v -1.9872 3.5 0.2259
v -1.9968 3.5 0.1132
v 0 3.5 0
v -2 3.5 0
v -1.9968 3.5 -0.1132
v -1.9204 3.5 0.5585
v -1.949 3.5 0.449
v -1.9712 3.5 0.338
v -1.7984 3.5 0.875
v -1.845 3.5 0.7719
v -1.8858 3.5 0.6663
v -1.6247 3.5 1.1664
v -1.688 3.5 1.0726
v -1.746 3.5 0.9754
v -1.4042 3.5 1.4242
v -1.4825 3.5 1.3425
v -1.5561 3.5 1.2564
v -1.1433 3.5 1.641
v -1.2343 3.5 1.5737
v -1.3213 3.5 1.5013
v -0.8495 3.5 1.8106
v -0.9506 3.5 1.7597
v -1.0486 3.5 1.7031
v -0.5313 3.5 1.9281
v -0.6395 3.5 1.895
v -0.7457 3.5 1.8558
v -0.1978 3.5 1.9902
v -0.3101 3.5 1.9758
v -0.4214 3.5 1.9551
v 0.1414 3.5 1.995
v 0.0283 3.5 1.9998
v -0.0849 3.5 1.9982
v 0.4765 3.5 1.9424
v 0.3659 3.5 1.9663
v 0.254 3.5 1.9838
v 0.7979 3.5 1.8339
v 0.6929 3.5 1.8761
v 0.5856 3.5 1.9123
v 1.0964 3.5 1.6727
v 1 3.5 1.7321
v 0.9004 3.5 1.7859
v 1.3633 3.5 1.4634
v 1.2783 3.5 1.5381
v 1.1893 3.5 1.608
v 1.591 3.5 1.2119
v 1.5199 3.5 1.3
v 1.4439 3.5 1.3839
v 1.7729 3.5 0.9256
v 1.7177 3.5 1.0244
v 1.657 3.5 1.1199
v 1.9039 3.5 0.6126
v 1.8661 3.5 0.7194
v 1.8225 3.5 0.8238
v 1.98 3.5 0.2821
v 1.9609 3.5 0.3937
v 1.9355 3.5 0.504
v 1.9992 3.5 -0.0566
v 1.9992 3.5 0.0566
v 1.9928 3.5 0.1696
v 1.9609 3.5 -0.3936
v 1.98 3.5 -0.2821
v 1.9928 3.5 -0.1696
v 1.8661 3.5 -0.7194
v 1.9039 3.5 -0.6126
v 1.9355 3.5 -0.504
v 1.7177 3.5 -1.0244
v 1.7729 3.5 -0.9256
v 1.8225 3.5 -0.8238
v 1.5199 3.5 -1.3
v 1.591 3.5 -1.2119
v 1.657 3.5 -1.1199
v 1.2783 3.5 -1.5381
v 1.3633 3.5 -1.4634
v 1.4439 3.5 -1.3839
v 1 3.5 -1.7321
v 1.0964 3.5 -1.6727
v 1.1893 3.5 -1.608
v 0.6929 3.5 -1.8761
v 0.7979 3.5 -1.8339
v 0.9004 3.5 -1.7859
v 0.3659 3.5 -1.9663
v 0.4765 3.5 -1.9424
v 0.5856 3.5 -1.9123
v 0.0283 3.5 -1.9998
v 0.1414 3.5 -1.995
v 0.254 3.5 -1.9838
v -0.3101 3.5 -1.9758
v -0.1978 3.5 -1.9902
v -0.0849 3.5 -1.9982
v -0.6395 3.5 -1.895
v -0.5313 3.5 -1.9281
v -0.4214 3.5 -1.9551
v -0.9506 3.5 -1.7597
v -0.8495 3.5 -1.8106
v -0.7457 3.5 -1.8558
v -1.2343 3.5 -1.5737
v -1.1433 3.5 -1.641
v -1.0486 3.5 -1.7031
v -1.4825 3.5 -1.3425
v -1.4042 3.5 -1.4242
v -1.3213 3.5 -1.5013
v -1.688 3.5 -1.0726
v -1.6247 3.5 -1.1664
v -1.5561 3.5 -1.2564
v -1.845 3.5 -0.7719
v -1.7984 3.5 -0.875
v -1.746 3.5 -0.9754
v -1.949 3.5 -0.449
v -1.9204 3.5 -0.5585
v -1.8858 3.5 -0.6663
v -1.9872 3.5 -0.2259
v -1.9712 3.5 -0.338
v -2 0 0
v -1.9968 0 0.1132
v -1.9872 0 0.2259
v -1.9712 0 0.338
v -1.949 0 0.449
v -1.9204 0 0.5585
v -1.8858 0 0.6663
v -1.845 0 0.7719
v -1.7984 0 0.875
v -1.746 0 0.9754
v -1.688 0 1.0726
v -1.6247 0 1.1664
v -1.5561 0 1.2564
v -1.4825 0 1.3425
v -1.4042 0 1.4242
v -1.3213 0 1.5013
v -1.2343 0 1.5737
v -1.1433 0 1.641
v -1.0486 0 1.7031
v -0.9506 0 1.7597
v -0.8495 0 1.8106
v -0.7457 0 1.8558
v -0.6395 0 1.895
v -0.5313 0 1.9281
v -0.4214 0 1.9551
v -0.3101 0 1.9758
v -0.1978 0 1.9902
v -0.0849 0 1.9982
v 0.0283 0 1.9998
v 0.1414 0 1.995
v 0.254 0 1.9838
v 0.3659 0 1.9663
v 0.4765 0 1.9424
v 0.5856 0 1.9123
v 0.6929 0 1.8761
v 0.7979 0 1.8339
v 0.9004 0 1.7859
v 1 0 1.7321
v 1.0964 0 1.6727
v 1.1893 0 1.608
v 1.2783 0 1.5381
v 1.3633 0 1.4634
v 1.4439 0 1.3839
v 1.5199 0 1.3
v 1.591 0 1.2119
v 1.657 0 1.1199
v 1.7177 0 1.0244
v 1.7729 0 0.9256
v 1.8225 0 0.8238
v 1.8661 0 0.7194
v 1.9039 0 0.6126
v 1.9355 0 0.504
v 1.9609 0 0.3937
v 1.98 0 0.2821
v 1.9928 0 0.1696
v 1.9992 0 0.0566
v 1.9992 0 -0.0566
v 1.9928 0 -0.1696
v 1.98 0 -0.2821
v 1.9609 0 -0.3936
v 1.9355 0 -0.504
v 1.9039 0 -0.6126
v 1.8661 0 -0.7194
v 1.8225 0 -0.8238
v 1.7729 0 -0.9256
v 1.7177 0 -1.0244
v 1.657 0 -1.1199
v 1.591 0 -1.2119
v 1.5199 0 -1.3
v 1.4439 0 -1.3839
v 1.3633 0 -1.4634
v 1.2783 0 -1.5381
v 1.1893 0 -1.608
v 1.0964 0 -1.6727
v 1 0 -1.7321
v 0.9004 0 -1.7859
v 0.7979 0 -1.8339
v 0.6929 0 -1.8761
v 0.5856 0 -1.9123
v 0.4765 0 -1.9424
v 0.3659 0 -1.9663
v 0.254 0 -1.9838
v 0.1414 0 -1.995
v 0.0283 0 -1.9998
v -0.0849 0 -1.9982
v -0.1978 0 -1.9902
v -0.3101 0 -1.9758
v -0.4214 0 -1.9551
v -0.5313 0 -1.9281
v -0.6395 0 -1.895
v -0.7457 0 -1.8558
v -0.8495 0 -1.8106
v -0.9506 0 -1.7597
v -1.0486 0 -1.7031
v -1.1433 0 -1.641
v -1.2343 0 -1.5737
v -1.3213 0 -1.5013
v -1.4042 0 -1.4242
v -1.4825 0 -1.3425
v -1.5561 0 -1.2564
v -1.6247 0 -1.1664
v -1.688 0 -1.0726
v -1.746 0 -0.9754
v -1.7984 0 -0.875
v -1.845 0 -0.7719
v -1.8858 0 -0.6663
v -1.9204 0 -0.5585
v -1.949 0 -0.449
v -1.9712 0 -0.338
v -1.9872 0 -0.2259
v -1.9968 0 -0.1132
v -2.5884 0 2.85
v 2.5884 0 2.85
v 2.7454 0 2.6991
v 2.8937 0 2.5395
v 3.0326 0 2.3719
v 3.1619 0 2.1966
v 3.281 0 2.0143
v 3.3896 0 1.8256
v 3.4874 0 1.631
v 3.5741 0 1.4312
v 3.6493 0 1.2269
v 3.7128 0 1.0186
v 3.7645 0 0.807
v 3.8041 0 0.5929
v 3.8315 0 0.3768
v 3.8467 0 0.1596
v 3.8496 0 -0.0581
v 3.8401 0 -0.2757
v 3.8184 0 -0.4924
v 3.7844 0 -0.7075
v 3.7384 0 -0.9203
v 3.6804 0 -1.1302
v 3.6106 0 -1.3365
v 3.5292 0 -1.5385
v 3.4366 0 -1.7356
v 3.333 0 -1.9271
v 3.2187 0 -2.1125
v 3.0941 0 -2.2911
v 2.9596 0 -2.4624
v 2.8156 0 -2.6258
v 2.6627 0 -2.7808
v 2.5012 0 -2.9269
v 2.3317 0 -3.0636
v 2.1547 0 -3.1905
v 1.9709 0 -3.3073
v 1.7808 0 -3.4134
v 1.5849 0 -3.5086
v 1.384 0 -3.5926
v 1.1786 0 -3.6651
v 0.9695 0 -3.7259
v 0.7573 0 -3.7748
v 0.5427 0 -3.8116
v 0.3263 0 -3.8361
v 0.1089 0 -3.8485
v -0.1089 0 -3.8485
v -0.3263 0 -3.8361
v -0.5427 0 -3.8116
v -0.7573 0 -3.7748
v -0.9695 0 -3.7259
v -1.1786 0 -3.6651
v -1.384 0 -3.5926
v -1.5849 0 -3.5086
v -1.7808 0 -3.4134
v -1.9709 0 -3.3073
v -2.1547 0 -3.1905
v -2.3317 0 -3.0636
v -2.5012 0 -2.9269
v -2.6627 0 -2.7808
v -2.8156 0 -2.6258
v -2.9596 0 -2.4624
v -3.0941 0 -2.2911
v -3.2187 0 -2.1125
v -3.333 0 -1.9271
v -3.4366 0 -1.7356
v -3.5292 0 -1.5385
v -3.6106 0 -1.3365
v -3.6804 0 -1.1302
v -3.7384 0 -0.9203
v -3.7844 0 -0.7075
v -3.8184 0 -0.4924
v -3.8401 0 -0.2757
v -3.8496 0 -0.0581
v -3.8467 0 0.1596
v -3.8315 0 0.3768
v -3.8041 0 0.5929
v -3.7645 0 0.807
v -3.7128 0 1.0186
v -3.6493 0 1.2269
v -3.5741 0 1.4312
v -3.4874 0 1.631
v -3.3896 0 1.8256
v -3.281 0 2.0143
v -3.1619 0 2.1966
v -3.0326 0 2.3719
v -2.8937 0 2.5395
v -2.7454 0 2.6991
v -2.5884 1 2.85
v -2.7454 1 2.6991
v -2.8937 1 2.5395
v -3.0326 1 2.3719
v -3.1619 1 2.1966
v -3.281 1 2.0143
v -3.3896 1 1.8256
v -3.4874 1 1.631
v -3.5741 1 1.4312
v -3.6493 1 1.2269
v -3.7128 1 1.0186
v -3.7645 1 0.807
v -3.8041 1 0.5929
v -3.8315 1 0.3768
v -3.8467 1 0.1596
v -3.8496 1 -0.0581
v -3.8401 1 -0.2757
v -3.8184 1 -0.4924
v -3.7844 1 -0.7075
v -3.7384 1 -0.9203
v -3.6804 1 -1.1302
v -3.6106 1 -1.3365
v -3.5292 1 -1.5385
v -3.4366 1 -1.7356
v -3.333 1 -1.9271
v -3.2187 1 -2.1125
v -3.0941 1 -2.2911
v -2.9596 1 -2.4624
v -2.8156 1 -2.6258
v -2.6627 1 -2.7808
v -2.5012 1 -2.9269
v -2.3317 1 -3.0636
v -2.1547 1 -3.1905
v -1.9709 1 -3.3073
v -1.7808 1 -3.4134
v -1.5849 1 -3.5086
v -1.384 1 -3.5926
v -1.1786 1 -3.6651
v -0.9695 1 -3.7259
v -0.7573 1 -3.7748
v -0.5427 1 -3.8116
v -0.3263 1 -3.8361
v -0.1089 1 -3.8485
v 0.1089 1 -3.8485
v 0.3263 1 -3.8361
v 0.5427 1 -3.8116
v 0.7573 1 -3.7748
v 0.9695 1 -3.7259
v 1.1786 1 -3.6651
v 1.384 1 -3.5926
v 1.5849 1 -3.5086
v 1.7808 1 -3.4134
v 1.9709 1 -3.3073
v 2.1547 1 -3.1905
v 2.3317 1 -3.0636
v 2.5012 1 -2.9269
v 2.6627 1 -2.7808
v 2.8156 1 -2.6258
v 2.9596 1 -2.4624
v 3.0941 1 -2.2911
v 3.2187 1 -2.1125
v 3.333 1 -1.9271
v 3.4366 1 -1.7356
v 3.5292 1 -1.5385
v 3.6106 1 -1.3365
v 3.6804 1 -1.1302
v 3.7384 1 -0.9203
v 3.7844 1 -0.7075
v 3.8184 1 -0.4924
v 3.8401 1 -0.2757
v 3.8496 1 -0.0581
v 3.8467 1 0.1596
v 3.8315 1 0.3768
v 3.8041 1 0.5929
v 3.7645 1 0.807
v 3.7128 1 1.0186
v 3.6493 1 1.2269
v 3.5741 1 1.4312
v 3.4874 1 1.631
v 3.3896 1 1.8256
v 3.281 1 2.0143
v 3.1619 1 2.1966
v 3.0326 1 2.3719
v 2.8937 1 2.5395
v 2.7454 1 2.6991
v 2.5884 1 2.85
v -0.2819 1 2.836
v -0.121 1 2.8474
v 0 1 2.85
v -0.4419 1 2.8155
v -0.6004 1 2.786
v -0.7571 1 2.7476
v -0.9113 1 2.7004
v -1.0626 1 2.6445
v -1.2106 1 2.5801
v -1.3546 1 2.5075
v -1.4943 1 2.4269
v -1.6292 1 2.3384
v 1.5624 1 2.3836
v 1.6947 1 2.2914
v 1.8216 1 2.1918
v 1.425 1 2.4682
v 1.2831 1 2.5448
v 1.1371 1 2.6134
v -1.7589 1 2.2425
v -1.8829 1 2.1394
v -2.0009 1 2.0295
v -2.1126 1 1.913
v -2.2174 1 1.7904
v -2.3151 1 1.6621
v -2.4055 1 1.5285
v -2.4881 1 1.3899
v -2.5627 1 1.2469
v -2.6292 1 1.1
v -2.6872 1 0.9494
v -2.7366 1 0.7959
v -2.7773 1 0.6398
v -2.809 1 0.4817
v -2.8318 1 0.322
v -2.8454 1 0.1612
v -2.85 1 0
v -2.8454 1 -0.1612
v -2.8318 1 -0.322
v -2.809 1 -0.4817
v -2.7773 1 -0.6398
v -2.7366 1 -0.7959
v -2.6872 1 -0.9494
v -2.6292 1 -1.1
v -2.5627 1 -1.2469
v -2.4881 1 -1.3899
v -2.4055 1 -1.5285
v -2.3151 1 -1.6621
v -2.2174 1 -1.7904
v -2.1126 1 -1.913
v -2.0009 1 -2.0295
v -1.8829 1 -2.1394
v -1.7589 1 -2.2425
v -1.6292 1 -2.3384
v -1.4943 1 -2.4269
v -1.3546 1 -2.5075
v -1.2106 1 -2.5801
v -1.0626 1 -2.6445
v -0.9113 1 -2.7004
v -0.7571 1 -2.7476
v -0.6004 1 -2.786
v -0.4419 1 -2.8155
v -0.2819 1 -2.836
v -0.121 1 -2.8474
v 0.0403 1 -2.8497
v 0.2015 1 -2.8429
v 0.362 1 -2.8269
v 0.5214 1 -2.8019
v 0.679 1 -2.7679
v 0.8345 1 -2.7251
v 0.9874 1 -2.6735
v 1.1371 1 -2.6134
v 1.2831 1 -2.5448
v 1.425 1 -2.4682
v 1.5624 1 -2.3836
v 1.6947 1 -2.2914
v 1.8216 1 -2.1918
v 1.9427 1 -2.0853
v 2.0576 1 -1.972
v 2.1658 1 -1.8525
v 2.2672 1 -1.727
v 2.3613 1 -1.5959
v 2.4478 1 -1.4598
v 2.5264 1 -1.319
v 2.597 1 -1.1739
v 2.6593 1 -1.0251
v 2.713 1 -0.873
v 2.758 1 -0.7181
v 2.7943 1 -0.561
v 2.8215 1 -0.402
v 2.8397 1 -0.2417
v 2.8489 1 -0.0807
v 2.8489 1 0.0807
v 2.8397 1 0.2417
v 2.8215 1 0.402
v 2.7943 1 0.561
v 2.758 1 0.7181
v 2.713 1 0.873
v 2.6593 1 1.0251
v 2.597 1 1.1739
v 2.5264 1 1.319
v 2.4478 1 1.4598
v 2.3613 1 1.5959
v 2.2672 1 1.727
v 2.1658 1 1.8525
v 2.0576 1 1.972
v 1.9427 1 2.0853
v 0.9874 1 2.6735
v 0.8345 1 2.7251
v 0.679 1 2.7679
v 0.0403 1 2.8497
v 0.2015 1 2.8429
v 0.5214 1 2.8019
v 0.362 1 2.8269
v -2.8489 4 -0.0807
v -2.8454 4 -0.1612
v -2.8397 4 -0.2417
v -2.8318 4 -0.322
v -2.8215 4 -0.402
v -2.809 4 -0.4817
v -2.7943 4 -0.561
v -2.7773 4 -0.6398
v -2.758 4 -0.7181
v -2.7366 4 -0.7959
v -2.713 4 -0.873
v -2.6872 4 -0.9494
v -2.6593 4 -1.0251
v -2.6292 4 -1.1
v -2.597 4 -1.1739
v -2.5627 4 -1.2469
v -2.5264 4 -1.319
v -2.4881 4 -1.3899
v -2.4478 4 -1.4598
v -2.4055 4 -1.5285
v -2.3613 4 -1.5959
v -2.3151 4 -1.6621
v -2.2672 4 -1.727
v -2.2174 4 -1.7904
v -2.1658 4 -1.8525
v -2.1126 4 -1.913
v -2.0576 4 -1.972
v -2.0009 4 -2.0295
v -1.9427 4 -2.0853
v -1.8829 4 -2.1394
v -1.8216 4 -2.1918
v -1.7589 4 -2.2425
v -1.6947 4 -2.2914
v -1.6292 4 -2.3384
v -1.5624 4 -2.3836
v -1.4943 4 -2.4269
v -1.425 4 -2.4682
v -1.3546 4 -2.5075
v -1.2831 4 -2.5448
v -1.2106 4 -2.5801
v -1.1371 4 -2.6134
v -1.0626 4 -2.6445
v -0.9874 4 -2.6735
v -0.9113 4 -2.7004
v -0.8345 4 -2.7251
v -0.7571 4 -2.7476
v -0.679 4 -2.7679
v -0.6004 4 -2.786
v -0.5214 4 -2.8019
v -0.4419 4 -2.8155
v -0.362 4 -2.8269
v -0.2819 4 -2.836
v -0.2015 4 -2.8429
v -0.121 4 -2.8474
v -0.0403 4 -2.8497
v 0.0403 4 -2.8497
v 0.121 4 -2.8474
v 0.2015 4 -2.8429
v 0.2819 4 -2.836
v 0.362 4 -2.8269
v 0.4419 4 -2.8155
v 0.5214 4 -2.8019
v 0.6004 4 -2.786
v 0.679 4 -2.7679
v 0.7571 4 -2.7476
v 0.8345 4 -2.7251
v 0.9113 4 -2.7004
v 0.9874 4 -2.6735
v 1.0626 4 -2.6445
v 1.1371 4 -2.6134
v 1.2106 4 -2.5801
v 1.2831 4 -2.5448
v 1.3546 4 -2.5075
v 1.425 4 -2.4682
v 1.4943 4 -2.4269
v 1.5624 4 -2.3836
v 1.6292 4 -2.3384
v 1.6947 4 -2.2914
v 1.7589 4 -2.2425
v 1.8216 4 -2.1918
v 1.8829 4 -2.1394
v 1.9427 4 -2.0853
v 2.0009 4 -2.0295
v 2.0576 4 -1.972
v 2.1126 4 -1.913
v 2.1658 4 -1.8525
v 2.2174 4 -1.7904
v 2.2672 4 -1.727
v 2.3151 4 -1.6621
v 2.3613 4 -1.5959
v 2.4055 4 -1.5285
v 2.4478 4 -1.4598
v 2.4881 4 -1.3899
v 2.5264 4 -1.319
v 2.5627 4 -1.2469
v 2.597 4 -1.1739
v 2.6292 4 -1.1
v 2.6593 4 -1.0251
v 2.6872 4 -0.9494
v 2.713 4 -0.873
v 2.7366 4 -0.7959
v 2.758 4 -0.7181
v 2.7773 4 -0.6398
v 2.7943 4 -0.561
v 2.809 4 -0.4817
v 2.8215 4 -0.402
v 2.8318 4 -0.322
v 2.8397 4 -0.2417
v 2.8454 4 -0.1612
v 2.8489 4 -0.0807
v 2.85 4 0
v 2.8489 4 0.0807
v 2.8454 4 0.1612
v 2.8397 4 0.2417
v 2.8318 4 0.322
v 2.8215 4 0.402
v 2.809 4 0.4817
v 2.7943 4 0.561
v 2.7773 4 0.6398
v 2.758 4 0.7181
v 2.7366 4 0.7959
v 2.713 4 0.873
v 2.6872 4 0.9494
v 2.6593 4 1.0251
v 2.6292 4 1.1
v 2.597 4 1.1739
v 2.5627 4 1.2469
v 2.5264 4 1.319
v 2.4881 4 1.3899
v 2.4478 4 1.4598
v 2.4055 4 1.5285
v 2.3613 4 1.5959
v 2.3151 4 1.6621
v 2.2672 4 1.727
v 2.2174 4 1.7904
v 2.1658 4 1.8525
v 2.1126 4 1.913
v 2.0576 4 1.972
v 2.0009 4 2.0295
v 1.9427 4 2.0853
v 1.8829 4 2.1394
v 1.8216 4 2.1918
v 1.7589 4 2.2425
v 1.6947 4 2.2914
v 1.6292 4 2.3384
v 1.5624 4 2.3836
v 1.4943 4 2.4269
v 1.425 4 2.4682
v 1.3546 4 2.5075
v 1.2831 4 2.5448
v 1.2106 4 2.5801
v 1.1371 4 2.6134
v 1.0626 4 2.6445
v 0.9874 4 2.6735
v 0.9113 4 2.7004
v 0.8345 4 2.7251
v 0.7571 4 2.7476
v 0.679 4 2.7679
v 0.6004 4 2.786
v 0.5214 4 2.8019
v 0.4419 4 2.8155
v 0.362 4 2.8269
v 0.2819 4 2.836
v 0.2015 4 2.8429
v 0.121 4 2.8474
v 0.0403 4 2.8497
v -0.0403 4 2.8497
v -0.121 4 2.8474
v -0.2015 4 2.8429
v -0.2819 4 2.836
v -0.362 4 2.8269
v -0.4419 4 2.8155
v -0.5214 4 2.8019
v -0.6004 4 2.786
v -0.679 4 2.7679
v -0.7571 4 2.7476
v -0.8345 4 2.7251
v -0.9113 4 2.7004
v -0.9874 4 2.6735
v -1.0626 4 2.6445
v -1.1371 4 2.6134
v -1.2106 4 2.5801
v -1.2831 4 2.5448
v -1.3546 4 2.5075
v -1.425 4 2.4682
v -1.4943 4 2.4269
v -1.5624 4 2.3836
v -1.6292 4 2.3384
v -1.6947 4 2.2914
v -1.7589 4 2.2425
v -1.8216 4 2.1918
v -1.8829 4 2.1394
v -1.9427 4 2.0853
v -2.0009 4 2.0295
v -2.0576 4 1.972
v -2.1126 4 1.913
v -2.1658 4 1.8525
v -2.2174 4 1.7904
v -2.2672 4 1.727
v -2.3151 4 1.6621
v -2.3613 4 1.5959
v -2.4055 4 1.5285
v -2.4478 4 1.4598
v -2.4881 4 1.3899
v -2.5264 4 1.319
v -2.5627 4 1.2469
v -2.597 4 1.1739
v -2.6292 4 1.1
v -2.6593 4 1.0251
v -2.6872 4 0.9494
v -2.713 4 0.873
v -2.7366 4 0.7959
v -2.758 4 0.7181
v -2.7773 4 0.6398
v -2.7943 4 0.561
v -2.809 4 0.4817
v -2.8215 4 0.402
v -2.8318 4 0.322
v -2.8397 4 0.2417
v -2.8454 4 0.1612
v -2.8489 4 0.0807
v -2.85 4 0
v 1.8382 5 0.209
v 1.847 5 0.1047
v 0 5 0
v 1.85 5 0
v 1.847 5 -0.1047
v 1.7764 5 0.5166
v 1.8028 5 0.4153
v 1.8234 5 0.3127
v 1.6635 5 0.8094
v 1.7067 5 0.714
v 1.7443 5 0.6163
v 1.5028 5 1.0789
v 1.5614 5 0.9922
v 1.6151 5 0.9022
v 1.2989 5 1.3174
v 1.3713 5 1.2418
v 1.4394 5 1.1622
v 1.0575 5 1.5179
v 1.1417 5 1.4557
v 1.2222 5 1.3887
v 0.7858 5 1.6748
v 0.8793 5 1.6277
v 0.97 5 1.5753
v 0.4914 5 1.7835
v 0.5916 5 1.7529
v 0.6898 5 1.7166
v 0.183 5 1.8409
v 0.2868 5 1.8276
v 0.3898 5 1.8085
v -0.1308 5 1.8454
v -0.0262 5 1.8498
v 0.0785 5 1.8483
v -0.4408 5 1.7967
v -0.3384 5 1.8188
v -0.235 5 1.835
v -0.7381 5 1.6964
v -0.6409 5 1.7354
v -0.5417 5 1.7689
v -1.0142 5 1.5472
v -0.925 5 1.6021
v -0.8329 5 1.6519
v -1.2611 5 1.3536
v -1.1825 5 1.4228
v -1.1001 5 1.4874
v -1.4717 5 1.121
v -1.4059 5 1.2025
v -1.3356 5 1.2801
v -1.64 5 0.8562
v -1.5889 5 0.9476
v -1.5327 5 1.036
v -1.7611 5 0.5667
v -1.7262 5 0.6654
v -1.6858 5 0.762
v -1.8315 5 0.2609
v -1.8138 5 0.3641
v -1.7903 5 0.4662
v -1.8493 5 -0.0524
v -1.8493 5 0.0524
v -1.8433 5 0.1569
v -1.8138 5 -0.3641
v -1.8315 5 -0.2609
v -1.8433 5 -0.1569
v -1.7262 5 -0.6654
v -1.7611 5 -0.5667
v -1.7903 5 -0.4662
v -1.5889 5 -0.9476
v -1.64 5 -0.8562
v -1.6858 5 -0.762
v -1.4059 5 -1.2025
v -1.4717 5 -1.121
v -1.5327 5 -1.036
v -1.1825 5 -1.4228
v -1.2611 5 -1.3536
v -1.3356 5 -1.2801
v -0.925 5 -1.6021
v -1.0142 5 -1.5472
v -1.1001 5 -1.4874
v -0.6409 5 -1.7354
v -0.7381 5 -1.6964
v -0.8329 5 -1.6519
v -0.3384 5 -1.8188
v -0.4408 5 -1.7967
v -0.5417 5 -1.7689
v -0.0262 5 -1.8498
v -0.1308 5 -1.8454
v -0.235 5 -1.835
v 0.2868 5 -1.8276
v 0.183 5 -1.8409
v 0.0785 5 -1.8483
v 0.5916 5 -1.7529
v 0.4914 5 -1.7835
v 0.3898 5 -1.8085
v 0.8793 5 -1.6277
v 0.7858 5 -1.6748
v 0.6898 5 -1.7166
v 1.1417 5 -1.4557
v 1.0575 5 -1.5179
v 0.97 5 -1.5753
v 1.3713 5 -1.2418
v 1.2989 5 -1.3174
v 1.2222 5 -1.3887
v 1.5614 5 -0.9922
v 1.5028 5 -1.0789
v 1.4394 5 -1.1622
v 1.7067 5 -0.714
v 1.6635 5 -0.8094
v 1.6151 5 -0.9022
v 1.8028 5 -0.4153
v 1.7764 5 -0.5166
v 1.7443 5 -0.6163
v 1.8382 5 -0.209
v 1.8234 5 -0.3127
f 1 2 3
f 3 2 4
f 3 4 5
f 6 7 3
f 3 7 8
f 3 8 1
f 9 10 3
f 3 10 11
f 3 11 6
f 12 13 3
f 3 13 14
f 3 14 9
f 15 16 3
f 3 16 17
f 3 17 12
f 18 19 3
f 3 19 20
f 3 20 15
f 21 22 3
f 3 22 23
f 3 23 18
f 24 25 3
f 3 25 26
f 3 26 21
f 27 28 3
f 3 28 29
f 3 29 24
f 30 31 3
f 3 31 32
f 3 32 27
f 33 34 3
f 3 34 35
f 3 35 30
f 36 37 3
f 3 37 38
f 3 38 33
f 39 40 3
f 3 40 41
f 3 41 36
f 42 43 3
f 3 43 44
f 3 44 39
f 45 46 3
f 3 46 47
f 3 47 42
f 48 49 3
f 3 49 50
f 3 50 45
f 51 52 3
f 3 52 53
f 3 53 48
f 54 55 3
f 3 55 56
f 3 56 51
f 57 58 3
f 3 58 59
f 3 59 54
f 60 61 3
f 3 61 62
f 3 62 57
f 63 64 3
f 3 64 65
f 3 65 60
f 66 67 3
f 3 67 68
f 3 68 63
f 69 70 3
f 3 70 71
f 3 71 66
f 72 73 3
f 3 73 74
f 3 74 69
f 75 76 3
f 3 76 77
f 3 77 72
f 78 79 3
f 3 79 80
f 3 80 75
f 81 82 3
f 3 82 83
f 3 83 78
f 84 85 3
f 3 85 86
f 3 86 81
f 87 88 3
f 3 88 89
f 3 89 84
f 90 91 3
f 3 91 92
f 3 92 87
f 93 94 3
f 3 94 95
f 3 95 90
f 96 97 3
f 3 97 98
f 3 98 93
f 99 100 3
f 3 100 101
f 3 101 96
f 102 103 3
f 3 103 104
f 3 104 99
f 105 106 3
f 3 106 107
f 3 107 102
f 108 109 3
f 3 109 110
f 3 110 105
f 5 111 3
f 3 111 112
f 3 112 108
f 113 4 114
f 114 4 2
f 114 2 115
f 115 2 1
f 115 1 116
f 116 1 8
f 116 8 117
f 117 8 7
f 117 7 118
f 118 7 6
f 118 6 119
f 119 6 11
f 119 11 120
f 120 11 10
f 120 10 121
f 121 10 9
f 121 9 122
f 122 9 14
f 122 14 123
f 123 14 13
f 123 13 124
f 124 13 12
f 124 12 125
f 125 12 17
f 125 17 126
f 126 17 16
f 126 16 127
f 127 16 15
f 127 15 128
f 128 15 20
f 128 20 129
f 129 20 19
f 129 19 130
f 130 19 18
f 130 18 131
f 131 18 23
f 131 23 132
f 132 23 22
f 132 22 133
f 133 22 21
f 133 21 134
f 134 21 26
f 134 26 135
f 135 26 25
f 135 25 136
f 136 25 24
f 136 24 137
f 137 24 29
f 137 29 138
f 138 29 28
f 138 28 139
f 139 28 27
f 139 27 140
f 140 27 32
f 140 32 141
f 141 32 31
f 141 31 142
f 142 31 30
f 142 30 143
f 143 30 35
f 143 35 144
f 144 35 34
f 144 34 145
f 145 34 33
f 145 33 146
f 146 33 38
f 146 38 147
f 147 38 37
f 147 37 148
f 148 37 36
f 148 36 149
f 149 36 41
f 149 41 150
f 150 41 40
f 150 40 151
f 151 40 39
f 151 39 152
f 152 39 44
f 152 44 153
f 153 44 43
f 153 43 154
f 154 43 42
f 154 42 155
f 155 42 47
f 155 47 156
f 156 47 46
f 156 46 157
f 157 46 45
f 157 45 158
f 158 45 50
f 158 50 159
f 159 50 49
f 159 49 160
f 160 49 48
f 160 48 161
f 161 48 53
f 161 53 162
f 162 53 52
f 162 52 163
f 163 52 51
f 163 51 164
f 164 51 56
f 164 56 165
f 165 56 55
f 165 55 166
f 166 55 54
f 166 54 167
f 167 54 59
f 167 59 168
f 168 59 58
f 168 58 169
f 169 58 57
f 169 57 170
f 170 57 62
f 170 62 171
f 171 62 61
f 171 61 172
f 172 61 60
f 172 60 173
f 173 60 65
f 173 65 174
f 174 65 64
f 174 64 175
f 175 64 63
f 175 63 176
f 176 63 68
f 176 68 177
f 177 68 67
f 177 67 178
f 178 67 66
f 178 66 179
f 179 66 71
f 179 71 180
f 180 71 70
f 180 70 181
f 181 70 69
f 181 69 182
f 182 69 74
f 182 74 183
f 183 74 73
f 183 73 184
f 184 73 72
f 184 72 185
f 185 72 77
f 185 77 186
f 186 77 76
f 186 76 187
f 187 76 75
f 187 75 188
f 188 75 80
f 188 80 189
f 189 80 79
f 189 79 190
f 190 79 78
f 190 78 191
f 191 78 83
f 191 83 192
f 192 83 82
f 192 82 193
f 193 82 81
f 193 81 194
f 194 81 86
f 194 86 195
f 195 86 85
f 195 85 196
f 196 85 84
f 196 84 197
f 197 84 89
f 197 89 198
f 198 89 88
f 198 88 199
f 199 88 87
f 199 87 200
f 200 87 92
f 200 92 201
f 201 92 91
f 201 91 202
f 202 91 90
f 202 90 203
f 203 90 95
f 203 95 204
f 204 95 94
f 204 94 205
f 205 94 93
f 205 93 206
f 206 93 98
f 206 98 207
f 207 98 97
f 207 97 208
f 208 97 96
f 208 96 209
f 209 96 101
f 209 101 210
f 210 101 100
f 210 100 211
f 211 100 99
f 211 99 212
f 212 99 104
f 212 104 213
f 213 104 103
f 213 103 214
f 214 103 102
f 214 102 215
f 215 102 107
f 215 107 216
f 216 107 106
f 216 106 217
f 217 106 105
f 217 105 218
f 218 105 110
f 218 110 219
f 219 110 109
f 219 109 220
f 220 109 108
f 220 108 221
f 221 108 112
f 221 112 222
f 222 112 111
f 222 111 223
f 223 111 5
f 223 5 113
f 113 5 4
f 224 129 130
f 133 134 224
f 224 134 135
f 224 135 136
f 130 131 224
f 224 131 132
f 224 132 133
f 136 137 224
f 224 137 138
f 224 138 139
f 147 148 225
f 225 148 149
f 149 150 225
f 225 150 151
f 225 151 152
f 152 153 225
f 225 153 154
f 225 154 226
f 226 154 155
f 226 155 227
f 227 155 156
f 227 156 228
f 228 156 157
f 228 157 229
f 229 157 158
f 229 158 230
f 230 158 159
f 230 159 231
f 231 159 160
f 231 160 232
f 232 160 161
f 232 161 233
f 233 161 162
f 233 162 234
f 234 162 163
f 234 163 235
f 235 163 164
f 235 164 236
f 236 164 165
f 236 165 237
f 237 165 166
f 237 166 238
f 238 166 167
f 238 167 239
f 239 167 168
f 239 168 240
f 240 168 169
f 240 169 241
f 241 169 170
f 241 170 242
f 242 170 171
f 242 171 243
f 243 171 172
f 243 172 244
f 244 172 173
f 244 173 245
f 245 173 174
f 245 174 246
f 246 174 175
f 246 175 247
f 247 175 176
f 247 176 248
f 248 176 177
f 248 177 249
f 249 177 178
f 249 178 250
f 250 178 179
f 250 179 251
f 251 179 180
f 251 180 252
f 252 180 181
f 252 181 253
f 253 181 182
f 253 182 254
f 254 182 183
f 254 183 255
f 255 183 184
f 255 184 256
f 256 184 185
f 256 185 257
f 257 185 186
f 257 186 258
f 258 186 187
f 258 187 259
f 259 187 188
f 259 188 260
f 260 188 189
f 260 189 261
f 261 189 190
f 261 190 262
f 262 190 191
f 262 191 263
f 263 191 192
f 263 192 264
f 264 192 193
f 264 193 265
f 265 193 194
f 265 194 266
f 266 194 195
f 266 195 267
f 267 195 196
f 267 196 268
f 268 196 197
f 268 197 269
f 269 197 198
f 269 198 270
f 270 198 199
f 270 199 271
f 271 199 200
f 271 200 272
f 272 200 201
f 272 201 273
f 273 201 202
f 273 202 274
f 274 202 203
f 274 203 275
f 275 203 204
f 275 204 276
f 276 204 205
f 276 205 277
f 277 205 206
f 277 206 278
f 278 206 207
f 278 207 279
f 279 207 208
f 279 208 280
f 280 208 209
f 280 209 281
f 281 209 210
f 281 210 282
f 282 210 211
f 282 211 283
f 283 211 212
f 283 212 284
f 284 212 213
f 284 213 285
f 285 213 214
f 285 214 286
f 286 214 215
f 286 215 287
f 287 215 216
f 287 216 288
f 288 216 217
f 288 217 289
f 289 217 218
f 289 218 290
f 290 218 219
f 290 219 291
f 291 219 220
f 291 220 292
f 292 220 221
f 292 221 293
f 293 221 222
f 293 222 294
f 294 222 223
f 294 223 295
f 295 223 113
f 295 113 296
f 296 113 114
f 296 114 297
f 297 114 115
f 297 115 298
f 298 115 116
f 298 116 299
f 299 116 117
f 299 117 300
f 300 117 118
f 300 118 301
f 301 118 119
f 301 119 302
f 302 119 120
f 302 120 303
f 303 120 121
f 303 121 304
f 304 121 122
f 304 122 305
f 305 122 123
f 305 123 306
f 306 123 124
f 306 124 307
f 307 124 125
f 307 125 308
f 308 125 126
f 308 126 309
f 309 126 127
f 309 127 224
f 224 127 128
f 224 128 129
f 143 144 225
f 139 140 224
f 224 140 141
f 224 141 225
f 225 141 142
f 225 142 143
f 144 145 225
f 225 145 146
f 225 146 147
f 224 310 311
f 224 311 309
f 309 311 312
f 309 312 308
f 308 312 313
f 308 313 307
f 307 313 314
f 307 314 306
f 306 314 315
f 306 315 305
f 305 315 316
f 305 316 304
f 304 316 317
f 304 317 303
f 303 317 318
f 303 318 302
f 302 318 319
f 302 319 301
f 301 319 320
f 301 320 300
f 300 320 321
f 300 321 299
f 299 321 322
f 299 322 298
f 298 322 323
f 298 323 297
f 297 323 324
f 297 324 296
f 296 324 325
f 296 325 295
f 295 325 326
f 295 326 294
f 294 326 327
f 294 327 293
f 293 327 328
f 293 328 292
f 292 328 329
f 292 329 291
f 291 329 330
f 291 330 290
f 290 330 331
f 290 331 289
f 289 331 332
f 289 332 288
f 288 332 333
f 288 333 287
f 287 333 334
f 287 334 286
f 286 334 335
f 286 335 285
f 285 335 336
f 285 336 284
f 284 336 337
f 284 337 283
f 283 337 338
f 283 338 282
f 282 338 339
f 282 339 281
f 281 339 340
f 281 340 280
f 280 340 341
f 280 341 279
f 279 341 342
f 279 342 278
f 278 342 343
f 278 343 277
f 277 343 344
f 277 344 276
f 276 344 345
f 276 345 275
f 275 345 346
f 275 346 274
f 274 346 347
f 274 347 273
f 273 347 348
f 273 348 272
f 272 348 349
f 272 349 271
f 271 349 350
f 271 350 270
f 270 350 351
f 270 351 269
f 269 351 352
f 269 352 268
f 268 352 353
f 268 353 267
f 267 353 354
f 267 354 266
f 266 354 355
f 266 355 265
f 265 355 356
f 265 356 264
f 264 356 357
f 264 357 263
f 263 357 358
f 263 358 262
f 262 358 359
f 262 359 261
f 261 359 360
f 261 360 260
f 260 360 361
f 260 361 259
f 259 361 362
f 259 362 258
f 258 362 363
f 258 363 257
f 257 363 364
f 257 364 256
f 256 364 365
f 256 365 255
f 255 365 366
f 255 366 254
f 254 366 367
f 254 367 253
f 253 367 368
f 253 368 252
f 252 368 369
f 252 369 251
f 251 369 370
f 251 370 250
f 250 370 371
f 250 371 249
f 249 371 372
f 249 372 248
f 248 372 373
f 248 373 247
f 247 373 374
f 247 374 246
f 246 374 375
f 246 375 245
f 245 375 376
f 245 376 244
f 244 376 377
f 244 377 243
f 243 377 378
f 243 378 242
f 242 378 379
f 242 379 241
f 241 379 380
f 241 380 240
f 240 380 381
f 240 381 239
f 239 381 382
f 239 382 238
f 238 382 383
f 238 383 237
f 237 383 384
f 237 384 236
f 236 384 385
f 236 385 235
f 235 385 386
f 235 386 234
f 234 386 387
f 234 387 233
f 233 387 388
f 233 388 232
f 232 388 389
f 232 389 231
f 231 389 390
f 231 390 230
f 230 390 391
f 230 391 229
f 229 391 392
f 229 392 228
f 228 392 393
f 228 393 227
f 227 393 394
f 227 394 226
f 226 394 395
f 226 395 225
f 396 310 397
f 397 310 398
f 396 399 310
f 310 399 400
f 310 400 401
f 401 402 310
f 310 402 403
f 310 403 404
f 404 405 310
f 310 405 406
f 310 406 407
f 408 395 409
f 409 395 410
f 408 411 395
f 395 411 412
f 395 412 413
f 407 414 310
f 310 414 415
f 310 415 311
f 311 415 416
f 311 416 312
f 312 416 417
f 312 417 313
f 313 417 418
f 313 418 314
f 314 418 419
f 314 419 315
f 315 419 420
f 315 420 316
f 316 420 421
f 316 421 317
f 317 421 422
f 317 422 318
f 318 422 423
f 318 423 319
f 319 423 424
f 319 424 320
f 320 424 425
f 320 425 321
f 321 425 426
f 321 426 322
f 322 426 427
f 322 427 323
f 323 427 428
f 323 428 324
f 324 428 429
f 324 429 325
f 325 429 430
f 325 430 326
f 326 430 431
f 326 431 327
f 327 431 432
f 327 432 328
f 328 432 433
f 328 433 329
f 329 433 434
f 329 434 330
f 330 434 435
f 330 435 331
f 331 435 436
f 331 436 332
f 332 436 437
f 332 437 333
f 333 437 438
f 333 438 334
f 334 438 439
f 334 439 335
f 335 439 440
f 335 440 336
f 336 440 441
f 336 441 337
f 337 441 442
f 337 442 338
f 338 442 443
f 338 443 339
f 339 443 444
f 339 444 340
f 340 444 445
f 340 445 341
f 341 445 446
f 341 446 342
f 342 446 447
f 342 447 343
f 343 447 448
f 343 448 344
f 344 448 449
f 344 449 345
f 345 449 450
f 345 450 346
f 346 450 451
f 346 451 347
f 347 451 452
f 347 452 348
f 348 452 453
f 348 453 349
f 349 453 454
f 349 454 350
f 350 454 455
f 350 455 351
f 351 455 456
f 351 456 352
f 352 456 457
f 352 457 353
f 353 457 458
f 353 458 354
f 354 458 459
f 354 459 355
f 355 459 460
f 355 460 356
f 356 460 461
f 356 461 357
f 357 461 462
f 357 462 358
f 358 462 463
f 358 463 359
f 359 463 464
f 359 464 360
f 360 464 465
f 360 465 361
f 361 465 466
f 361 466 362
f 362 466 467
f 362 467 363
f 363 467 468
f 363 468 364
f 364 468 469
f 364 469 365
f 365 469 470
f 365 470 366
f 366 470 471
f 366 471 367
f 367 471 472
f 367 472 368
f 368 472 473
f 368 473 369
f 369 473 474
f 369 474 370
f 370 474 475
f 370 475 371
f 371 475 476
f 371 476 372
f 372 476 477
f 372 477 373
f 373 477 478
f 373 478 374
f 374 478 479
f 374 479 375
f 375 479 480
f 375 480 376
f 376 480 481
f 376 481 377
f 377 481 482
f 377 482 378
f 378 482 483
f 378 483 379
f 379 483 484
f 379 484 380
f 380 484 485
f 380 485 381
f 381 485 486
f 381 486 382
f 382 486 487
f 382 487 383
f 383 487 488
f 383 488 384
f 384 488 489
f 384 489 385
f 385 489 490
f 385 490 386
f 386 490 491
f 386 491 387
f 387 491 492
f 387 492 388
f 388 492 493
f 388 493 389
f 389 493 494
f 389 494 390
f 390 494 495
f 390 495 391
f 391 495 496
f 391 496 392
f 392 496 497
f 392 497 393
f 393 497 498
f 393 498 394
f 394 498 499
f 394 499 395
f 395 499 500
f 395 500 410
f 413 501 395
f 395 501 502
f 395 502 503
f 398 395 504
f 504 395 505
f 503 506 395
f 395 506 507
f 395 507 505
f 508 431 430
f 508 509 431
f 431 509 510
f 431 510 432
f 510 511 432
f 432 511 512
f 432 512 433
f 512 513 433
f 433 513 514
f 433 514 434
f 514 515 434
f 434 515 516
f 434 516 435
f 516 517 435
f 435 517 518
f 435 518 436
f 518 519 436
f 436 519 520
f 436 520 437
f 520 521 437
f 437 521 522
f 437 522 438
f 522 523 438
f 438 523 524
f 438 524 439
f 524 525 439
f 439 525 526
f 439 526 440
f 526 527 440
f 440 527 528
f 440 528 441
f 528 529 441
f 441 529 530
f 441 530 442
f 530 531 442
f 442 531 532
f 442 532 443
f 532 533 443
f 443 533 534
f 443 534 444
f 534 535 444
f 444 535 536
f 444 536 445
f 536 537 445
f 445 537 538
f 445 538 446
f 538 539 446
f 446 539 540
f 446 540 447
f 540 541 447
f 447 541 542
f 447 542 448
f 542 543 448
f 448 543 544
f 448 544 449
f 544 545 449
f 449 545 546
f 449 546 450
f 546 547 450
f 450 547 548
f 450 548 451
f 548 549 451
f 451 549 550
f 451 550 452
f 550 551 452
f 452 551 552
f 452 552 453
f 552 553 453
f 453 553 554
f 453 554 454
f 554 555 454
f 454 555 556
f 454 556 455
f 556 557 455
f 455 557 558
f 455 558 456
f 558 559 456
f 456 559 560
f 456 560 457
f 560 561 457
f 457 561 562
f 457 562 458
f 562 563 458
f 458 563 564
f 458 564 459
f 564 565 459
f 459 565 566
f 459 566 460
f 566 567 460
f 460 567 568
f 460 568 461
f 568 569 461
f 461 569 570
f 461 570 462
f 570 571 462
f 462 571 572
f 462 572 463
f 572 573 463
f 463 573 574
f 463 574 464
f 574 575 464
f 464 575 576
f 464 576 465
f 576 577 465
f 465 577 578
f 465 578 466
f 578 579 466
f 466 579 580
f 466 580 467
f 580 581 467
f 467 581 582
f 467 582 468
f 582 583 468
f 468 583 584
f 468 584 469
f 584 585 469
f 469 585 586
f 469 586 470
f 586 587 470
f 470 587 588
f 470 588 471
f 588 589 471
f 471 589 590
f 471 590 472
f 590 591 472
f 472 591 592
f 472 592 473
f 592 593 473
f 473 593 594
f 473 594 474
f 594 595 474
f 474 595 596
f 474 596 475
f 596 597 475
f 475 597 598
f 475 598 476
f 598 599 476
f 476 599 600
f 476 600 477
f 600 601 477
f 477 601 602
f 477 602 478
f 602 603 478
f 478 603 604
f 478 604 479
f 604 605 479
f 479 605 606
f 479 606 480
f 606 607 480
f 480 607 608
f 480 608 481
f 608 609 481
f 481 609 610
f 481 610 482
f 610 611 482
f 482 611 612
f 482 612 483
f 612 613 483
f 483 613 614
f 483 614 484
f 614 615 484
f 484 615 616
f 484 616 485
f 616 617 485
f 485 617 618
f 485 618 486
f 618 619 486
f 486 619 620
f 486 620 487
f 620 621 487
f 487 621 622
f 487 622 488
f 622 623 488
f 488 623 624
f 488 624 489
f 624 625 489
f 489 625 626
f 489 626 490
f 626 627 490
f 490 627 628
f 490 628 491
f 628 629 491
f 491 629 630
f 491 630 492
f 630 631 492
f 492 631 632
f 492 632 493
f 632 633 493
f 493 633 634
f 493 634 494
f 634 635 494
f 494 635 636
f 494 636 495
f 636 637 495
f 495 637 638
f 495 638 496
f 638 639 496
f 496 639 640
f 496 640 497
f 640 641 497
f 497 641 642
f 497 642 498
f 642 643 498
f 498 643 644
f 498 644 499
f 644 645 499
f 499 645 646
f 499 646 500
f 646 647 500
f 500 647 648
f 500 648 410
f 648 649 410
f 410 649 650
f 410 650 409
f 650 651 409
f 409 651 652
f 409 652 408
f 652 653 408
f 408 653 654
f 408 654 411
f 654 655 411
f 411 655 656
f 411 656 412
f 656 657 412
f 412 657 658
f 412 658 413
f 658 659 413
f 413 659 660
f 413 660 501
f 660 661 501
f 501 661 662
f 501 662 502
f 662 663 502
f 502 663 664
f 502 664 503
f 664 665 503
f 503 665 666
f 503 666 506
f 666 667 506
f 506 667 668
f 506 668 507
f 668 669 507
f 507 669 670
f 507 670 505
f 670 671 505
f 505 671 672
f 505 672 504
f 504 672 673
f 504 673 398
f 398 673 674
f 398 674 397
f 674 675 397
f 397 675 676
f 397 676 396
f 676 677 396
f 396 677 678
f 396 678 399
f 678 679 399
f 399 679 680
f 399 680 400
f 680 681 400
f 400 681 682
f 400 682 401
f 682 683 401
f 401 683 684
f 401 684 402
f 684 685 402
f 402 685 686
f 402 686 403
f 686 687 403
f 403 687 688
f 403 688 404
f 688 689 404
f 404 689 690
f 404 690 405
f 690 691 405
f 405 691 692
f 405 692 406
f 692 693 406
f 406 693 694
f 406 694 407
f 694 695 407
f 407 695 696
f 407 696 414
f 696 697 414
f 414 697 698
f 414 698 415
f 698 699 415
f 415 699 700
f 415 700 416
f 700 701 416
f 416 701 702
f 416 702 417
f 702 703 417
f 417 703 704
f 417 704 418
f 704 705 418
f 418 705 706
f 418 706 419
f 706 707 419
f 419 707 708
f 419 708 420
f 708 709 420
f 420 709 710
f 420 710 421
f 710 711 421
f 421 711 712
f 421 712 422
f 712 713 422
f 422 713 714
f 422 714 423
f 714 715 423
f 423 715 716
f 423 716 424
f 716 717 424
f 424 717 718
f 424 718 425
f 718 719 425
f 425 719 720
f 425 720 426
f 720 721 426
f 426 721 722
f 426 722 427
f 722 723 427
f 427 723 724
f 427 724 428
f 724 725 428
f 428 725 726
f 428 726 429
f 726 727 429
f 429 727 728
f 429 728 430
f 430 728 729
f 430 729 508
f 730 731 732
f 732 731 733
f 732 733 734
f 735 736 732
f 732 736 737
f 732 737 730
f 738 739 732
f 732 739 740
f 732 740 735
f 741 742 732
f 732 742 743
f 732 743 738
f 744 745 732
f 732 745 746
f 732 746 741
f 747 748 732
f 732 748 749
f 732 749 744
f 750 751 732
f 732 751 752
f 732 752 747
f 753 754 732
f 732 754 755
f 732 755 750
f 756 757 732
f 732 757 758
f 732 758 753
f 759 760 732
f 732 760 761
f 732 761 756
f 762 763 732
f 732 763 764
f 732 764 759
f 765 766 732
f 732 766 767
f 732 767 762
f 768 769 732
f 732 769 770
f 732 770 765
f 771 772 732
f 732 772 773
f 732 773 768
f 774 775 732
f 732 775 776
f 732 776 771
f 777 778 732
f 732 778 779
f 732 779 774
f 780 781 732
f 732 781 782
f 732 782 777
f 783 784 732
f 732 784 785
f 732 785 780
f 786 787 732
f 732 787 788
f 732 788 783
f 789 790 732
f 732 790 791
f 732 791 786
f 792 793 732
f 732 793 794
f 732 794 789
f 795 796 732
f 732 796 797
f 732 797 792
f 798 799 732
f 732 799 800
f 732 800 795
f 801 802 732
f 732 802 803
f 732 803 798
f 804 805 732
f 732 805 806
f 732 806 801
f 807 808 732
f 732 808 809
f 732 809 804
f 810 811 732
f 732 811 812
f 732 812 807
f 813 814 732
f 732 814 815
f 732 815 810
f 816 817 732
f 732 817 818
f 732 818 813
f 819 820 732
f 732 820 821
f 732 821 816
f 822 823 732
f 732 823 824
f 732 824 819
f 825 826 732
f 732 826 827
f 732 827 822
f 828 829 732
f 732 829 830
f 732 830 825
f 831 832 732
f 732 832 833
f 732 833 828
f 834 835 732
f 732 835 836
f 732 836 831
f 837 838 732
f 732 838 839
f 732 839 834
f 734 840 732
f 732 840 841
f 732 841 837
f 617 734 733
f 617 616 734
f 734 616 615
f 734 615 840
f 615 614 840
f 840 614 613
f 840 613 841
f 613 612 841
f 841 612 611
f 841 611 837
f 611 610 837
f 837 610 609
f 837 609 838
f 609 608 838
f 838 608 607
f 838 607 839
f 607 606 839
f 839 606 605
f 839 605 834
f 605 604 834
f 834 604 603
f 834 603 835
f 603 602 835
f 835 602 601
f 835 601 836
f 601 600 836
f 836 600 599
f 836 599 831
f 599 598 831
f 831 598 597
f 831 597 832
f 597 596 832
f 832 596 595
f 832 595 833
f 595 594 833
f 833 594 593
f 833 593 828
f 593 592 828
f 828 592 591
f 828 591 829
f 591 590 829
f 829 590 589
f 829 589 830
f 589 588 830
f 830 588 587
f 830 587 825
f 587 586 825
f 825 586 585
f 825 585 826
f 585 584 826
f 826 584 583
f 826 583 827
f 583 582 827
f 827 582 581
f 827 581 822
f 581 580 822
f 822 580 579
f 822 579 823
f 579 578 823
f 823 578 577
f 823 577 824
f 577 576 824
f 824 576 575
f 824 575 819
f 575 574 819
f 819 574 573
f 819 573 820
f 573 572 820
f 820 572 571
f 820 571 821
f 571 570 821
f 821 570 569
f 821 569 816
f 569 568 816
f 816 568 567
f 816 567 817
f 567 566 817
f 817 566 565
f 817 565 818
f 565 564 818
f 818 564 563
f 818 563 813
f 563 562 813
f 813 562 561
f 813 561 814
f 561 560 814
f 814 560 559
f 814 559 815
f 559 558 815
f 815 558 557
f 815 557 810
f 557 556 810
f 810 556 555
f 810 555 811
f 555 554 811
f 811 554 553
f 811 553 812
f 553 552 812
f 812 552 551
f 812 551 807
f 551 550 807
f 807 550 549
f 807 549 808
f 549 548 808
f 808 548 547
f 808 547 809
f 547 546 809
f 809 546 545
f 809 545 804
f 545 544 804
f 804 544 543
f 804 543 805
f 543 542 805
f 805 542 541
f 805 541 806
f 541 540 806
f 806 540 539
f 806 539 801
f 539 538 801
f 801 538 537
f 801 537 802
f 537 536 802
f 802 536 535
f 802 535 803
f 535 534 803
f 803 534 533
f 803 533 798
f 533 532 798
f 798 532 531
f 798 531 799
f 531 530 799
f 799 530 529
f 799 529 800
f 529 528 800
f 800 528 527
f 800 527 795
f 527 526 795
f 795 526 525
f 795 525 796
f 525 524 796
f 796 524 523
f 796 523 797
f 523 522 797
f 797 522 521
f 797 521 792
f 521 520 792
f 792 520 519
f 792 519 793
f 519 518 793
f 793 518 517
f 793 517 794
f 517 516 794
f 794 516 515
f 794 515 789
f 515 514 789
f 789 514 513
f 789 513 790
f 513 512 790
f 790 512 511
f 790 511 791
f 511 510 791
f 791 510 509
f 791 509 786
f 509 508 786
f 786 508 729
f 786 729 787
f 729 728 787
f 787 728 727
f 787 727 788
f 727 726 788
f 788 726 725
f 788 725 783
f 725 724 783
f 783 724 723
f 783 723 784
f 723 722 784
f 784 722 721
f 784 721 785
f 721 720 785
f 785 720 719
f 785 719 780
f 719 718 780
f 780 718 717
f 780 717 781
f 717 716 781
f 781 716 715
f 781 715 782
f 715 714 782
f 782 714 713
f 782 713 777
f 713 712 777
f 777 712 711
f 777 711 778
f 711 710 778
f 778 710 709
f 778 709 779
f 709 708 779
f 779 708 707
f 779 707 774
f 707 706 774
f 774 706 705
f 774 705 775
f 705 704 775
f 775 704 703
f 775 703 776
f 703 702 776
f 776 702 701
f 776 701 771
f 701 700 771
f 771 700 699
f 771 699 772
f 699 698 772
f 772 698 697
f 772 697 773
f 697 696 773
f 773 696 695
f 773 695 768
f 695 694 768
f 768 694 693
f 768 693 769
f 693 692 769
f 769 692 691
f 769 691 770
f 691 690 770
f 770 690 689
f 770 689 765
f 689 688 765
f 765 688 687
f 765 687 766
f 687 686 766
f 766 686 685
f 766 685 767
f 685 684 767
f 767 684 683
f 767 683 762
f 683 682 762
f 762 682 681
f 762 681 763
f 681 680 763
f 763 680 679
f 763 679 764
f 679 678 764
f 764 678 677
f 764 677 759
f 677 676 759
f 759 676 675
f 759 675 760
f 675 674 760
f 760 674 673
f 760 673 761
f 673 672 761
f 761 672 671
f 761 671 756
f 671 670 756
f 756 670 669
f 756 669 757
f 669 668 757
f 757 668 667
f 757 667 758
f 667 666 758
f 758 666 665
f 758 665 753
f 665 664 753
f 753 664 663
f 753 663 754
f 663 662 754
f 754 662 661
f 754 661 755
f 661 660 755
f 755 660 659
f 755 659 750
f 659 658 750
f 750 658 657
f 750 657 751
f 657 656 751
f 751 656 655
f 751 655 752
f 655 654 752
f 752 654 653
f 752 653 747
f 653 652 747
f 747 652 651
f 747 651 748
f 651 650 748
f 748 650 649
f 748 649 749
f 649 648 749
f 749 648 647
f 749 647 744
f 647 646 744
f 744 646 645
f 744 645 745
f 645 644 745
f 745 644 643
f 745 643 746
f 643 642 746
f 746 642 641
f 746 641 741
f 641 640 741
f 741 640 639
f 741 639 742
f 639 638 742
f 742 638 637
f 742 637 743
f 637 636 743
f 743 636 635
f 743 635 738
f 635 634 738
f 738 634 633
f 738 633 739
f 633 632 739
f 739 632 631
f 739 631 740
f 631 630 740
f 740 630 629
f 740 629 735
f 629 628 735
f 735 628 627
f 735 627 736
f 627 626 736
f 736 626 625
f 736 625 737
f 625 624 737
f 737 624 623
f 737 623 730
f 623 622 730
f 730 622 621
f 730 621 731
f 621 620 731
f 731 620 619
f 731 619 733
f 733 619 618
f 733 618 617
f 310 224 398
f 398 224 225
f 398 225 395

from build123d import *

# Parameters (mm, degrees)
CHAMFER1_SIZE      = 1
SKETCH2_W          = 8.626605672
SKETCH2_H          = 1.786618514
CUT_EXTRUDE1_DEPTH = 2


with BuildPart() as part:
    # Sketch1 → Revolve1 (revolve)
    with BuildSketch(Plane.XY):
        Polygon((0, 3.5), (2, 3.5), (2, 0), (3.85, 0), (3.85, 1), (2.85, 1), (2.85, 5), (0, 5), align=None)
    revolve(axis=Axis((0, 3.5, 0), (0, -1, 0)))

    # Chamfer1
    chamfer1_edges = [part.edges().sort_by_distance(p)[0] for p in [
        (-2.85, 5, 0),
    ]]
    chamfer(chamfer1_edges, length=CHAMFER1_SIZE)

    # Sketch2 → Cut-Extrude1 (cut, through all)
    with BuildSketch(Plane(origin=(0, 1, 0), x_dir=(1, 0, 0), z_dir=(0, 1, 0))):
        with Locations((1.724867015, -3.743309257)):
            Rectangle(SKETCH2_W, SKETCH2_H)
    extrude(amount=-CUT_EXTRUDE1_DEPTH, mode=Mode.SUBTRACT)


solid = part.part
